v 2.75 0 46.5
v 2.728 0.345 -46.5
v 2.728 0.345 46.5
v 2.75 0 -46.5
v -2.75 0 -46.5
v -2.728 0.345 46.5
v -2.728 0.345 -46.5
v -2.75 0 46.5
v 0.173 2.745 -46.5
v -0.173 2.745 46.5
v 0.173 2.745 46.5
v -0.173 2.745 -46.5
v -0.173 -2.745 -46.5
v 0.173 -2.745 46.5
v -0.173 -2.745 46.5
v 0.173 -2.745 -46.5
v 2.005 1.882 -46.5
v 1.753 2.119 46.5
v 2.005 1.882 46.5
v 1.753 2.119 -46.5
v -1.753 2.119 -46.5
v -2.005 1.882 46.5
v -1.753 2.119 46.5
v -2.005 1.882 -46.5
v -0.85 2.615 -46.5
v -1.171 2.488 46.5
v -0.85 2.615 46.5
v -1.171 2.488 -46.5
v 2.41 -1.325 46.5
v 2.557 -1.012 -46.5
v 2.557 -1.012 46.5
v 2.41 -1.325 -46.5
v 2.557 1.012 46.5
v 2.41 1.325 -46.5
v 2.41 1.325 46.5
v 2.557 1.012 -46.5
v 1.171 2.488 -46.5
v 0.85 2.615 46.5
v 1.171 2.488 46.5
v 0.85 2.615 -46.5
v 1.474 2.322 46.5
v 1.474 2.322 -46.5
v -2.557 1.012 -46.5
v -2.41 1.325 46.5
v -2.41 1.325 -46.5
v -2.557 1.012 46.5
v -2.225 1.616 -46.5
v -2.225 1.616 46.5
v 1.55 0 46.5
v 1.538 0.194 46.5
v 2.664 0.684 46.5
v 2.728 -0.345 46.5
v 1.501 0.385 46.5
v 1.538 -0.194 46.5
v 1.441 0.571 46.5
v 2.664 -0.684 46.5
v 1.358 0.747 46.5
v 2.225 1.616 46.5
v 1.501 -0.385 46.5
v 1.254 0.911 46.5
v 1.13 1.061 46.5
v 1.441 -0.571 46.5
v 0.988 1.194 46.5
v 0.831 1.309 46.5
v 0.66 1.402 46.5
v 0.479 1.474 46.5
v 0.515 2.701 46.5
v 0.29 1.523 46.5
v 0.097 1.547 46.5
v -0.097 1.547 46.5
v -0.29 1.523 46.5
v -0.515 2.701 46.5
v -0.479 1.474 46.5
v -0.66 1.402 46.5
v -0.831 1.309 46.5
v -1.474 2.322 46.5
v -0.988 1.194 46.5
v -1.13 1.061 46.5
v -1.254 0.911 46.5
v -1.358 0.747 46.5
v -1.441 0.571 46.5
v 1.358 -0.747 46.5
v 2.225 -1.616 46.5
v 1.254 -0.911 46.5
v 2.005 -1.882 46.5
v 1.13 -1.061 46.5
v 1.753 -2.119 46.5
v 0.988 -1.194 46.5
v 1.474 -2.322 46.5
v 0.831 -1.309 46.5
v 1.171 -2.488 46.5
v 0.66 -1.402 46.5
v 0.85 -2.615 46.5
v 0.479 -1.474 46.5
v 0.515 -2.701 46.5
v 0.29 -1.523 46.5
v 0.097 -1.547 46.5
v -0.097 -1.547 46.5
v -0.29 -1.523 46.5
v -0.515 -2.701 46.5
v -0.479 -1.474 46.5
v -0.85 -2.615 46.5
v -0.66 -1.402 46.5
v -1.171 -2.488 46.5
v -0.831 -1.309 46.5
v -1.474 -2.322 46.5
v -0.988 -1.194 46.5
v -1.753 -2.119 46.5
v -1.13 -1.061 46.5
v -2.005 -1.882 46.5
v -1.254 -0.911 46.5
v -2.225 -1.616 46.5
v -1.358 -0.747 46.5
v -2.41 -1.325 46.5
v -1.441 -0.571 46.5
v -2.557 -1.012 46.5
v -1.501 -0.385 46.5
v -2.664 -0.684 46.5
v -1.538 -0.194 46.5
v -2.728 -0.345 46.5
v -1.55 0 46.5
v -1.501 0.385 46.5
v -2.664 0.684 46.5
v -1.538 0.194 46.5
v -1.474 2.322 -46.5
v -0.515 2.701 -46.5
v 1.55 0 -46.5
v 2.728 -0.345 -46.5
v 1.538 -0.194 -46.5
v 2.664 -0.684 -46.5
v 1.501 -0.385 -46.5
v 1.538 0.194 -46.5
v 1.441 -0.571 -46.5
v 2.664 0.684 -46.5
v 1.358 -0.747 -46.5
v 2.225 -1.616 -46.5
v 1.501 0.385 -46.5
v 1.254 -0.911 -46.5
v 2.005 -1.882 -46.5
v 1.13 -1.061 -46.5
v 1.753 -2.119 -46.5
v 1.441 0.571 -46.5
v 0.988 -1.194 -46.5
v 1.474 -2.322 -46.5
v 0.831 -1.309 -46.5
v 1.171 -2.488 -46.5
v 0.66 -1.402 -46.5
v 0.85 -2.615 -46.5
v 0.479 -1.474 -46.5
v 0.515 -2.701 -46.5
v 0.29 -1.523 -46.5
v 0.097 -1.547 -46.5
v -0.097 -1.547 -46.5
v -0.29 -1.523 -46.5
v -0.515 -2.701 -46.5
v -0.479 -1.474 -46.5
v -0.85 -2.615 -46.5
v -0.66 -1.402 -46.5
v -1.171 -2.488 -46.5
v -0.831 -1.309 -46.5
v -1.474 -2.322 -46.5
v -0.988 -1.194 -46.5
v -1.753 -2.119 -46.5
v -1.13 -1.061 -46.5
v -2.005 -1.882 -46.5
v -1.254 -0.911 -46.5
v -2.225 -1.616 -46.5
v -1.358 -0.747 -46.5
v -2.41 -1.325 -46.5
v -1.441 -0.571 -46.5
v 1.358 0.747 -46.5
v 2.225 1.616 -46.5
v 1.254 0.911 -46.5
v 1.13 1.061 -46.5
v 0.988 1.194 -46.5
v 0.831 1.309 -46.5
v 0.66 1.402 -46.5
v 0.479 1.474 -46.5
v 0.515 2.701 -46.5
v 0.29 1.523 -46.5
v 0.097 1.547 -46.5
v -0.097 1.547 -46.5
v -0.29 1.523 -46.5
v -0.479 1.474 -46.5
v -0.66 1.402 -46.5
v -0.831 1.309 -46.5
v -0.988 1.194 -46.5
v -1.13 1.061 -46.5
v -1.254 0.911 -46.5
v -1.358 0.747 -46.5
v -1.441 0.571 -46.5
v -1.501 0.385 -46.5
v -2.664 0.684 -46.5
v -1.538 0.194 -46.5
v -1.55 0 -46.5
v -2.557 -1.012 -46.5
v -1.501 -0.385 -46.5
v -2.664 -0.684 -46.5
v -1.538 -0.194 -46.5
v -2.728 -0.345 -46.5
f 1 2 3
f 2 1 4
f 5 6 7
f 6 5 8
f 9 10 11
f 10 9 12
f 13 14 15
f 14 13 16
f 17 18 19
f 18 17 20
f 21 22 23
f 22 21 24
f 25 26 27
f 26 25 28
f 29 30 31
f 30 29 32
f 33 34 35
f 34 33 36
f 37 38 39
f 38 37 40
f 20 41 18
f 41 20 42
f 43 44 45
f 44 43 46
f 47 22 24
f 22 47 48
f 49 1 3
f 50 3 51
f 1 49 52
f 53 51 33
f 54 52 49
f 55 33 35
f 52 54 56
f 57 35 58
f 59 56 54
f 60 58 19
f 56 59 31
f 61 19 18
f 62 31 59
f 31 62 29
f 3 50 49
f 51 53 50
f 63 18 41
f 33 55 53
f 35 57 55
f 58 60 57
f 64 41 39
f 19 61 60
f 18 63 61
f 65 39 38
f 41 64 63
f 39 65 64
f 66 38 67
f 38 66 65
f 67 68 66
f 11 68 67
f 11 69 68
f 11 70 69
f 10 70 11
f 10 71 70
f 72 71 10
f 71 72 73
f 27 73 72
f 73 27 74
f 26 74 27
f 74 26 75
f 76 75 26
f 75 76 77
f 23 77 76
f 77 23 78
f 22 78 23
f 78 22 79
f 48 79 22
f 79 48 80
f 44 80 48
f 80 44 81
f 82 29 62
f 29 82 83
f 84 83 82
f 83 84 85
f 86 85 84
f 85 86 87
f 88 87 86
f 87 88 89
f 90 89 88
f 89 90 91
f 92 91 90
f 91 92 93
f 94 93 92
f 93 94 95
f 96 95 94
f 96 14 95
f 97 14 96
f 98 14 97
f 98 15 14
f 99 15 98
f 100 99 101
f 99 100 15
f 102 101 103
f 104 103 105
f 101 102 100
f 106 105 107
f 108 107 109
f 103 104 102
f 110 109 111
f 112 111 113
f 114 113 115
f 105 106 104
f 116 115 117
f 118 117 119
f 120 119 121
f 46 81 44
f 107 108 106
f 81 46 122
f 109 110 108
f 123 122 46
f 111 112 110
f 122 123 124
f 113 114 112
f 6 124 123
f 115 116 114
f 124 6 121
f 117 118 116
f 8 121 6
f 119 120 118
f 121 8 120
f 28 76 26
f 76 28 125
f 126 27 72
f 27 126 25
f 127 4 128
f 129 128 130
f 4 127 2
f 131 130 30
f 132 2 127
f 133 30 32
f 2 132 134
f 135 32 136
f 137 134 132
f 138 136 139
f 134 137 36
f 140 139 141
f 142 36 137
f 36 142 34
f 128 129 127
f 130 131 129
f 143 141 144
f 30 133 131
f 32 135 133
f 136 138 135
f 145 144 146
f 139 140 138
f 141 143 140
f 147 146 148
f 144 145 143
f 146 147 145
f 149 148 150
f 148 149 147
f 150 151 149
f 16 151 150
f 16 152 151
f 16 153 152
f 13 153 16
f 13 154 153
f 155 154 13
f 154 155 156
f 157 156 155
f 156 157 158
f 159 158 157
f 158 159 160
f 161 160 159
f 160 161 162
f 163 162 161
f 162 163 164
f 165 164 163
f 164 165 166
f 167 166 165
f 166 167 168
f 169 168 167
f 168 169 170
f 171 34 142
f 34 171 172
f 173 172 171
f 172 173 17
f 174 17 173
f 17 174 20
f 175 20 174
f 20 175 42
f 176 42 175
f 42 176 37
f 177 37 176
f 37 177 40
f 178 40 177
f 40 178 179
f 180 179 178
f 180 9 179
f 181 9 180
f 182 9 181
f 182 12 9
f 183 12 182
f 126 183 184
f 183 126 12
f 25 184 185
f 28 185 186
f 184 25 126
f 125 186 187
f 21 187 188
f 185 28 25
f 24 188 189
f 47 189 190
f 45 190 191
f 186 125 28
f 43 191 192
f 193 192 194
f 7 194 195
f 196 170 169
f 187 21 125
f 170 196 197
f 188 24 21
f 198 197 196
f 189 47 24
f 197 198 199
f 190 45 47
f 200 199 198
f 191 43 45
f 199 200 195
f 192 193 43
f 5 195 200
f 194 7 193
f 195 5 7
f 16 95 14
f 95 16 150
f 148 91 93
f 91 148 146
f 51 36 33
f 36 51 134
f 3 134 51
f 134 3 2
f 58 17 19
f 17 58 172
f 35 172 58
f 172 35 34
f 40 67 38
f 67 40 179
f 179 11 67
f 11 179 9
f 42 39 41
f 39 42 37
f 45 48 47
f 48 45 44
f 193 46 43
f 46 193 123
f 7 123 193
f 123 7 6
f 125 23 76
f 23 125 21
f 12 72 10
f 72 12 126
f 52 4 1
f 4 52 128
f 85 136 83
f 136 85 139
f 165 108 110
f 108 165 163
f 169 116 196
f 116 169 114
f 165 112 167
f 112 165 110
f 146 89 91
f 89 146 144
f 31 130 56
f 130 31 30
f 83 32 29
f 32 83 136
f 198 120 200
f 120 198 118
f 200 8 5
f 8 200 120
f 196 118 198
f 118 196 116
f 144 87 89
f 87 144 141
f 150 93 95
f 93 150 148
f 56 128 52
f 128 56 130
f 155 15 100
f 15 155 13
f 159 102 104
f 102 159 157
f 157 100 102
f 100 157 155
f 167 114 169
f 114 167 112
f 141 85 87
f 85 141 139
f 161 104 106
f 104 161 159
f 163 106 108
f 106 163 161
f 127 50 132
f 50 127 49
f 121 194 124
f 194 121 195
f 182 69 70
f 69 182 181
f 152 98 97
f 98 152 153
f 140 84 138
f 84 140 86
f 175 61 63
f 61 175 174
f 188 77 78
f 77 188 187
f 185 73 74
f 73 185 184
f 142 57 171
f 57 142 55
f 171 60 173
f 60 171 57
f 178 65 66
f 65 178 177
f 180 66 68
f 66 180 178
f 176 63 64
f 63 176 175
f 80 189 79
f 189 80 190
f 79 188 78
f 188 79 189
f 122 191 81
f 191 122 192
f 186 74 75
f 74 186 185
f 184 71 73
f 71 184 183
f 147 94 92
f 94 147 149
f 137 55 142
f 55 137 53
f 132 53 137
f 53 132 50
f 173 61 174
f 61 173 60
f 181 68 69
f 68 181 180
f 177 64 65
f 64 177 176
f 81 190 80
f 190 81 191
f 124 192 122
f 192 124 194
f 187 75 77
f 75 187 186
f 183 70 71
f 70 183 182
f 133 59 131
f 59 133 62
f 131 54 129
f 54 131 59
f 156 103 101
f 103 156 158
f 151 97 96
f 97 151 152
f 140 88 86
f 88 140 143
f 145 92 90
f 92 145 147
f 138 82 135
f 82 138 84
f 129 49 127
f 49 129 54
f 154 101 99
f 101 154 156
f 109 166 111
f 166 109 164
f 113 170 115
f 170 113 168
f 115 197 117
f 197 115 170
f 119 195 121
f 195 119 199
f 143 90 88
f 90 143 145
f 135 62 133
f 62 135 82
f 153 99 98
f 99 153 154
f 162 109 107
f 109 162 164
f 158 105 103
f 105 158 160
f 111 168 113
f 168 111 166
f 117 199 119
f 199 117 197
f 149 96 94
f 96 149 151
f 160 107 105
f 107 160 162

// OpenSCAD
$fn = 50;


difference() {
	union() {
		translate(v = [0, 0, -46.5000000000]) {
			cylinder(h = 93, r = 2.7500000000);
		}
	}
	union() {
		translate(v = [0, 0, -100.0000000000]) {
			cylinder(h = 200, r = 1.5500000000);
		}
	}
}
